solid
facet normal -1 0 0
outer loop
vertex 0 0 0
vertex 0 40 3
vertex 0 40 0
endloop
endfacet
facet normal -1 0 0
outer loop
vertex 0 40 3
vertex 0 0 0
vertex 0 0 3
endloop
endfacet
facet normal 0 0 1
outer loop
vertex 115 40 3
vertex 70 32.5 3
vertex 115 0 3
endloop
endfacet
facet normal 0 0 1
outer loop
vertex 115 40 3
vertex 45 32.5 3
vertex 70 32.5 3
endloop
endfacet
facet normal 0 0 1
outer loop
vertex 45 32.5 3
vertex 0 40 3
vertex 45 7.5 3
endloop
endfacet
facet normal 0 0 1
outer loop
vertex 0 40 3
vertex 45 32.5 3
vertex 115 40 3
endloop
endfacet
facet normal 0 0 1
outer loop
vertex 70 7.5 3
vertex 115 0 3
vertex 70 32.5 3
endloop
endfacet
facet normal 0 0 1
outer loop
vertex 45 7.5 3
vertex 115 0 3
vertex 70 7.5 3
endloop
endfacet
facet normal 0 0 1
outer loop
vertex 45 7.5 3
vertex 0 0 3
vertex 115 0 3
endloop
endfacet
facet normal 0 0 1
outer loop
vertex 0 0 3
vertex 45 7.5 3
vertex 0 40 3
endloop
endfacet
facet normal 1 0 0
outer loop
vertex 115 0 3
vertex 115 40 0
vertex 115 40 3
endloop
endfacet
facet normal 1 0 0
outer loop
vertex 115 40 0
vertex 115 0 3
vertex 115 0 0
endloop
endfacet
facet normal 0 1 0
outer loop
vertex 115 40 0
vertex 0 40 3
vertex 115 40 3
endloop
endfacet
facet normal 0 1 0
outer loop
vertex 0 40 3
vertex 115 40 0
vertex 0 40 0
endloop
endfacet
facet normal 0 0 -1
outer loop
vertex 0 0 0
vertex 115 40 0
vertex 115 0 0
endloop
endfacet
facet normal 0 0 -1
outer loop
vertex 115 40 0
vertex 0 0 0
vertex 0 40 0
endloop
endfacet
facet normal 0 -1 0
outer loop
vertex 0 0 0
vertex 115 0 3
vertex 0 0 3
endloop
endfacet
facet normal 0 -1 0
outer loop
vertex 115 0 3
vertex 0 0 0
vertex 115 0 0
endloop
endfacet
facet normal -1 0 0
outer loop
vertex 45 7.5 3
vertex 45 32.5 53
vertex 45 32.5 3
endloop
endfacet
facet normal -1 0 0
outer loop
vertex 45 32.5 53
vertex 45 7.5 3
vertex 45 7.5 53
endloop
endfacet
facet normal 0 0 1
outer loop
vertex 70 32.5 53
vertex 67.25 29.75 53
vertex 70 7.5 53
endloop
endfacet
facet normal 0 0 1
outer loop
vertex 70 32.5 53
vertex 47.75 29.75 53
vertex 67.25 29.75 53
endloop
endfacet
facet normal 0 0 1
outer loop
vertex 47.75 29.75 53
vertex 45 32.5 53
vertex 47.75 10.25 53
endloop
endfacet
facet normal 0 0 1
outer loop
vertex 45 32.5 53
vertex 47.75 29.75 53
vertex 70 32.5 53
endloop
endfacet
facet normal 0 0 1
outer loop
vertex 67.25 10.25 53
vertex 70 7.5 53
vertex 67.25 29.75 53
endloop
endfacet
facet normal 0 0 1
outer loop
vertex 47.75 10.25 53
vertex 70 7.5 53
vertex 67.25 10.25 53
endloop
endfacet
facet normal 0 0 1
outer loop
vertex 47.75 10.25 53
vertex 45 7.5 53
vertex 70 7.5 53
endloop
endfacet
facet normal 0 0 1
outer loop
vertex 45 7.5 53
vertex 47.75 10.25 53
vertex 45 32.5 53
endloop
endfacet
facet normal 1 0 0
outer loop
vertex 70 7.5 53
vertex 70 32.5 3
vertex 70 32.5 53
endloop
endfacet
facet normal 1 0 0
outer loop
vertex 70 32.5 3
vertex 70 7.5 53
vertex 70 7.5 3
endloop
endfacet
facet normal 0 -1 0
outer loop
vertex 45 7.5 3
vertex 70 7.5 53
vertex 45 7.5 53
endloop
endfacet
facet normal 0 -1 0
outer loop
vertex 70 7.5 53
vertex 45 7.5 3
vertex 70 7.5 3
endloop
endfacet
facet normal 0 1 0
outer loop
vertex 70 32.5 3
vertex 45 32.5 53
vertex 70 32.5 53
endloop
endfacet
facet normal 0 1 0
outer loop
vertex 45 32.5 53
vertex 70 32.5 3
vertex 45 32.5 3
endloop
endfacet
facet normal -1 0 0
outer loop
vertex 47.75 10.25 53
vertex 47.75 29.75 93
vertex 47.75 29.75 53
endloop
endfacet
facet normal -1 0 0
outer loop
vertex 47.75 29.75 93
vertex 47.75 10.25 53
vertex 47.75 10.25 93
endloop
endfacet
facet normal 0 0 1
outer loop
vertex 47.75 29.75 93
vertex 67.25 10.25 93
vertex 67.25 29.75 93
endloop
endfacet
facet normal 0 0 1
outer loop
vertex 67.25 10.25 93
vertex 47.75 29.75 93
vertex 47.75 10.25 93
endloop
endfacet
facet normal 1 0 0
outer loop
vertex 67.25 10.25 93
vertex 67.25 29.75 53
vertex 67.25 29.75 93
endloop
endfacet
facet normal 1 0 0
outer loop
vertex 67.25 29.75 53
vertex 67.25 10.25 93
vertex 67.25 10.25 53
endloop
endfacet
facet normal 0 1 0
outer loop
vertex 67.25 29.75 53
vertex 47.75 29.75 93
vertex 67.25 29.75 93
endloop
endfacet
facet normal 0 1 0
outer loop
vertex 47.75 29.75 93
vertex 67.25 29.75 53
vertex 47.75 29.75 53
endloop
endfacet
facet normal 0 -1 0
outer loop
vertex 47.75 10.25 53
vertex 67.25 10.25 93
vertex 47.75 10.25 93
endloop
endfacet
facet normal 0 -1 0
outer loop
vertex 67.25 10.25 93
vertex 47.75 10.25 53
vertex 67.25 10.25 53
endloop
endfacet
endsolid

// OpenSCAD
length = 115;
diameter = 40;
floorThickness = 3;
width = diameter;
pillarHoleSide = 20;
smallPillar = pillarHoleSide - .5;
smallPillarHeight = diameter;
largePillar = pillarHoleSide + 5;
largePillarHeight = 50;

union() {
    cube([length, width, floorThickness]);
    translate([length/2 - largePillar/2, width/2 - largePillar/2, floorThickness])
        cube([largePillar, largePillar, largePillarHeight]);
    translate([length/2 - smallPillar/2, width/2 - smallPillar/2, floorThickness + largePillarHeight])
        cube([smallPillar, smallPillar, smallPillarHeight]);
}
